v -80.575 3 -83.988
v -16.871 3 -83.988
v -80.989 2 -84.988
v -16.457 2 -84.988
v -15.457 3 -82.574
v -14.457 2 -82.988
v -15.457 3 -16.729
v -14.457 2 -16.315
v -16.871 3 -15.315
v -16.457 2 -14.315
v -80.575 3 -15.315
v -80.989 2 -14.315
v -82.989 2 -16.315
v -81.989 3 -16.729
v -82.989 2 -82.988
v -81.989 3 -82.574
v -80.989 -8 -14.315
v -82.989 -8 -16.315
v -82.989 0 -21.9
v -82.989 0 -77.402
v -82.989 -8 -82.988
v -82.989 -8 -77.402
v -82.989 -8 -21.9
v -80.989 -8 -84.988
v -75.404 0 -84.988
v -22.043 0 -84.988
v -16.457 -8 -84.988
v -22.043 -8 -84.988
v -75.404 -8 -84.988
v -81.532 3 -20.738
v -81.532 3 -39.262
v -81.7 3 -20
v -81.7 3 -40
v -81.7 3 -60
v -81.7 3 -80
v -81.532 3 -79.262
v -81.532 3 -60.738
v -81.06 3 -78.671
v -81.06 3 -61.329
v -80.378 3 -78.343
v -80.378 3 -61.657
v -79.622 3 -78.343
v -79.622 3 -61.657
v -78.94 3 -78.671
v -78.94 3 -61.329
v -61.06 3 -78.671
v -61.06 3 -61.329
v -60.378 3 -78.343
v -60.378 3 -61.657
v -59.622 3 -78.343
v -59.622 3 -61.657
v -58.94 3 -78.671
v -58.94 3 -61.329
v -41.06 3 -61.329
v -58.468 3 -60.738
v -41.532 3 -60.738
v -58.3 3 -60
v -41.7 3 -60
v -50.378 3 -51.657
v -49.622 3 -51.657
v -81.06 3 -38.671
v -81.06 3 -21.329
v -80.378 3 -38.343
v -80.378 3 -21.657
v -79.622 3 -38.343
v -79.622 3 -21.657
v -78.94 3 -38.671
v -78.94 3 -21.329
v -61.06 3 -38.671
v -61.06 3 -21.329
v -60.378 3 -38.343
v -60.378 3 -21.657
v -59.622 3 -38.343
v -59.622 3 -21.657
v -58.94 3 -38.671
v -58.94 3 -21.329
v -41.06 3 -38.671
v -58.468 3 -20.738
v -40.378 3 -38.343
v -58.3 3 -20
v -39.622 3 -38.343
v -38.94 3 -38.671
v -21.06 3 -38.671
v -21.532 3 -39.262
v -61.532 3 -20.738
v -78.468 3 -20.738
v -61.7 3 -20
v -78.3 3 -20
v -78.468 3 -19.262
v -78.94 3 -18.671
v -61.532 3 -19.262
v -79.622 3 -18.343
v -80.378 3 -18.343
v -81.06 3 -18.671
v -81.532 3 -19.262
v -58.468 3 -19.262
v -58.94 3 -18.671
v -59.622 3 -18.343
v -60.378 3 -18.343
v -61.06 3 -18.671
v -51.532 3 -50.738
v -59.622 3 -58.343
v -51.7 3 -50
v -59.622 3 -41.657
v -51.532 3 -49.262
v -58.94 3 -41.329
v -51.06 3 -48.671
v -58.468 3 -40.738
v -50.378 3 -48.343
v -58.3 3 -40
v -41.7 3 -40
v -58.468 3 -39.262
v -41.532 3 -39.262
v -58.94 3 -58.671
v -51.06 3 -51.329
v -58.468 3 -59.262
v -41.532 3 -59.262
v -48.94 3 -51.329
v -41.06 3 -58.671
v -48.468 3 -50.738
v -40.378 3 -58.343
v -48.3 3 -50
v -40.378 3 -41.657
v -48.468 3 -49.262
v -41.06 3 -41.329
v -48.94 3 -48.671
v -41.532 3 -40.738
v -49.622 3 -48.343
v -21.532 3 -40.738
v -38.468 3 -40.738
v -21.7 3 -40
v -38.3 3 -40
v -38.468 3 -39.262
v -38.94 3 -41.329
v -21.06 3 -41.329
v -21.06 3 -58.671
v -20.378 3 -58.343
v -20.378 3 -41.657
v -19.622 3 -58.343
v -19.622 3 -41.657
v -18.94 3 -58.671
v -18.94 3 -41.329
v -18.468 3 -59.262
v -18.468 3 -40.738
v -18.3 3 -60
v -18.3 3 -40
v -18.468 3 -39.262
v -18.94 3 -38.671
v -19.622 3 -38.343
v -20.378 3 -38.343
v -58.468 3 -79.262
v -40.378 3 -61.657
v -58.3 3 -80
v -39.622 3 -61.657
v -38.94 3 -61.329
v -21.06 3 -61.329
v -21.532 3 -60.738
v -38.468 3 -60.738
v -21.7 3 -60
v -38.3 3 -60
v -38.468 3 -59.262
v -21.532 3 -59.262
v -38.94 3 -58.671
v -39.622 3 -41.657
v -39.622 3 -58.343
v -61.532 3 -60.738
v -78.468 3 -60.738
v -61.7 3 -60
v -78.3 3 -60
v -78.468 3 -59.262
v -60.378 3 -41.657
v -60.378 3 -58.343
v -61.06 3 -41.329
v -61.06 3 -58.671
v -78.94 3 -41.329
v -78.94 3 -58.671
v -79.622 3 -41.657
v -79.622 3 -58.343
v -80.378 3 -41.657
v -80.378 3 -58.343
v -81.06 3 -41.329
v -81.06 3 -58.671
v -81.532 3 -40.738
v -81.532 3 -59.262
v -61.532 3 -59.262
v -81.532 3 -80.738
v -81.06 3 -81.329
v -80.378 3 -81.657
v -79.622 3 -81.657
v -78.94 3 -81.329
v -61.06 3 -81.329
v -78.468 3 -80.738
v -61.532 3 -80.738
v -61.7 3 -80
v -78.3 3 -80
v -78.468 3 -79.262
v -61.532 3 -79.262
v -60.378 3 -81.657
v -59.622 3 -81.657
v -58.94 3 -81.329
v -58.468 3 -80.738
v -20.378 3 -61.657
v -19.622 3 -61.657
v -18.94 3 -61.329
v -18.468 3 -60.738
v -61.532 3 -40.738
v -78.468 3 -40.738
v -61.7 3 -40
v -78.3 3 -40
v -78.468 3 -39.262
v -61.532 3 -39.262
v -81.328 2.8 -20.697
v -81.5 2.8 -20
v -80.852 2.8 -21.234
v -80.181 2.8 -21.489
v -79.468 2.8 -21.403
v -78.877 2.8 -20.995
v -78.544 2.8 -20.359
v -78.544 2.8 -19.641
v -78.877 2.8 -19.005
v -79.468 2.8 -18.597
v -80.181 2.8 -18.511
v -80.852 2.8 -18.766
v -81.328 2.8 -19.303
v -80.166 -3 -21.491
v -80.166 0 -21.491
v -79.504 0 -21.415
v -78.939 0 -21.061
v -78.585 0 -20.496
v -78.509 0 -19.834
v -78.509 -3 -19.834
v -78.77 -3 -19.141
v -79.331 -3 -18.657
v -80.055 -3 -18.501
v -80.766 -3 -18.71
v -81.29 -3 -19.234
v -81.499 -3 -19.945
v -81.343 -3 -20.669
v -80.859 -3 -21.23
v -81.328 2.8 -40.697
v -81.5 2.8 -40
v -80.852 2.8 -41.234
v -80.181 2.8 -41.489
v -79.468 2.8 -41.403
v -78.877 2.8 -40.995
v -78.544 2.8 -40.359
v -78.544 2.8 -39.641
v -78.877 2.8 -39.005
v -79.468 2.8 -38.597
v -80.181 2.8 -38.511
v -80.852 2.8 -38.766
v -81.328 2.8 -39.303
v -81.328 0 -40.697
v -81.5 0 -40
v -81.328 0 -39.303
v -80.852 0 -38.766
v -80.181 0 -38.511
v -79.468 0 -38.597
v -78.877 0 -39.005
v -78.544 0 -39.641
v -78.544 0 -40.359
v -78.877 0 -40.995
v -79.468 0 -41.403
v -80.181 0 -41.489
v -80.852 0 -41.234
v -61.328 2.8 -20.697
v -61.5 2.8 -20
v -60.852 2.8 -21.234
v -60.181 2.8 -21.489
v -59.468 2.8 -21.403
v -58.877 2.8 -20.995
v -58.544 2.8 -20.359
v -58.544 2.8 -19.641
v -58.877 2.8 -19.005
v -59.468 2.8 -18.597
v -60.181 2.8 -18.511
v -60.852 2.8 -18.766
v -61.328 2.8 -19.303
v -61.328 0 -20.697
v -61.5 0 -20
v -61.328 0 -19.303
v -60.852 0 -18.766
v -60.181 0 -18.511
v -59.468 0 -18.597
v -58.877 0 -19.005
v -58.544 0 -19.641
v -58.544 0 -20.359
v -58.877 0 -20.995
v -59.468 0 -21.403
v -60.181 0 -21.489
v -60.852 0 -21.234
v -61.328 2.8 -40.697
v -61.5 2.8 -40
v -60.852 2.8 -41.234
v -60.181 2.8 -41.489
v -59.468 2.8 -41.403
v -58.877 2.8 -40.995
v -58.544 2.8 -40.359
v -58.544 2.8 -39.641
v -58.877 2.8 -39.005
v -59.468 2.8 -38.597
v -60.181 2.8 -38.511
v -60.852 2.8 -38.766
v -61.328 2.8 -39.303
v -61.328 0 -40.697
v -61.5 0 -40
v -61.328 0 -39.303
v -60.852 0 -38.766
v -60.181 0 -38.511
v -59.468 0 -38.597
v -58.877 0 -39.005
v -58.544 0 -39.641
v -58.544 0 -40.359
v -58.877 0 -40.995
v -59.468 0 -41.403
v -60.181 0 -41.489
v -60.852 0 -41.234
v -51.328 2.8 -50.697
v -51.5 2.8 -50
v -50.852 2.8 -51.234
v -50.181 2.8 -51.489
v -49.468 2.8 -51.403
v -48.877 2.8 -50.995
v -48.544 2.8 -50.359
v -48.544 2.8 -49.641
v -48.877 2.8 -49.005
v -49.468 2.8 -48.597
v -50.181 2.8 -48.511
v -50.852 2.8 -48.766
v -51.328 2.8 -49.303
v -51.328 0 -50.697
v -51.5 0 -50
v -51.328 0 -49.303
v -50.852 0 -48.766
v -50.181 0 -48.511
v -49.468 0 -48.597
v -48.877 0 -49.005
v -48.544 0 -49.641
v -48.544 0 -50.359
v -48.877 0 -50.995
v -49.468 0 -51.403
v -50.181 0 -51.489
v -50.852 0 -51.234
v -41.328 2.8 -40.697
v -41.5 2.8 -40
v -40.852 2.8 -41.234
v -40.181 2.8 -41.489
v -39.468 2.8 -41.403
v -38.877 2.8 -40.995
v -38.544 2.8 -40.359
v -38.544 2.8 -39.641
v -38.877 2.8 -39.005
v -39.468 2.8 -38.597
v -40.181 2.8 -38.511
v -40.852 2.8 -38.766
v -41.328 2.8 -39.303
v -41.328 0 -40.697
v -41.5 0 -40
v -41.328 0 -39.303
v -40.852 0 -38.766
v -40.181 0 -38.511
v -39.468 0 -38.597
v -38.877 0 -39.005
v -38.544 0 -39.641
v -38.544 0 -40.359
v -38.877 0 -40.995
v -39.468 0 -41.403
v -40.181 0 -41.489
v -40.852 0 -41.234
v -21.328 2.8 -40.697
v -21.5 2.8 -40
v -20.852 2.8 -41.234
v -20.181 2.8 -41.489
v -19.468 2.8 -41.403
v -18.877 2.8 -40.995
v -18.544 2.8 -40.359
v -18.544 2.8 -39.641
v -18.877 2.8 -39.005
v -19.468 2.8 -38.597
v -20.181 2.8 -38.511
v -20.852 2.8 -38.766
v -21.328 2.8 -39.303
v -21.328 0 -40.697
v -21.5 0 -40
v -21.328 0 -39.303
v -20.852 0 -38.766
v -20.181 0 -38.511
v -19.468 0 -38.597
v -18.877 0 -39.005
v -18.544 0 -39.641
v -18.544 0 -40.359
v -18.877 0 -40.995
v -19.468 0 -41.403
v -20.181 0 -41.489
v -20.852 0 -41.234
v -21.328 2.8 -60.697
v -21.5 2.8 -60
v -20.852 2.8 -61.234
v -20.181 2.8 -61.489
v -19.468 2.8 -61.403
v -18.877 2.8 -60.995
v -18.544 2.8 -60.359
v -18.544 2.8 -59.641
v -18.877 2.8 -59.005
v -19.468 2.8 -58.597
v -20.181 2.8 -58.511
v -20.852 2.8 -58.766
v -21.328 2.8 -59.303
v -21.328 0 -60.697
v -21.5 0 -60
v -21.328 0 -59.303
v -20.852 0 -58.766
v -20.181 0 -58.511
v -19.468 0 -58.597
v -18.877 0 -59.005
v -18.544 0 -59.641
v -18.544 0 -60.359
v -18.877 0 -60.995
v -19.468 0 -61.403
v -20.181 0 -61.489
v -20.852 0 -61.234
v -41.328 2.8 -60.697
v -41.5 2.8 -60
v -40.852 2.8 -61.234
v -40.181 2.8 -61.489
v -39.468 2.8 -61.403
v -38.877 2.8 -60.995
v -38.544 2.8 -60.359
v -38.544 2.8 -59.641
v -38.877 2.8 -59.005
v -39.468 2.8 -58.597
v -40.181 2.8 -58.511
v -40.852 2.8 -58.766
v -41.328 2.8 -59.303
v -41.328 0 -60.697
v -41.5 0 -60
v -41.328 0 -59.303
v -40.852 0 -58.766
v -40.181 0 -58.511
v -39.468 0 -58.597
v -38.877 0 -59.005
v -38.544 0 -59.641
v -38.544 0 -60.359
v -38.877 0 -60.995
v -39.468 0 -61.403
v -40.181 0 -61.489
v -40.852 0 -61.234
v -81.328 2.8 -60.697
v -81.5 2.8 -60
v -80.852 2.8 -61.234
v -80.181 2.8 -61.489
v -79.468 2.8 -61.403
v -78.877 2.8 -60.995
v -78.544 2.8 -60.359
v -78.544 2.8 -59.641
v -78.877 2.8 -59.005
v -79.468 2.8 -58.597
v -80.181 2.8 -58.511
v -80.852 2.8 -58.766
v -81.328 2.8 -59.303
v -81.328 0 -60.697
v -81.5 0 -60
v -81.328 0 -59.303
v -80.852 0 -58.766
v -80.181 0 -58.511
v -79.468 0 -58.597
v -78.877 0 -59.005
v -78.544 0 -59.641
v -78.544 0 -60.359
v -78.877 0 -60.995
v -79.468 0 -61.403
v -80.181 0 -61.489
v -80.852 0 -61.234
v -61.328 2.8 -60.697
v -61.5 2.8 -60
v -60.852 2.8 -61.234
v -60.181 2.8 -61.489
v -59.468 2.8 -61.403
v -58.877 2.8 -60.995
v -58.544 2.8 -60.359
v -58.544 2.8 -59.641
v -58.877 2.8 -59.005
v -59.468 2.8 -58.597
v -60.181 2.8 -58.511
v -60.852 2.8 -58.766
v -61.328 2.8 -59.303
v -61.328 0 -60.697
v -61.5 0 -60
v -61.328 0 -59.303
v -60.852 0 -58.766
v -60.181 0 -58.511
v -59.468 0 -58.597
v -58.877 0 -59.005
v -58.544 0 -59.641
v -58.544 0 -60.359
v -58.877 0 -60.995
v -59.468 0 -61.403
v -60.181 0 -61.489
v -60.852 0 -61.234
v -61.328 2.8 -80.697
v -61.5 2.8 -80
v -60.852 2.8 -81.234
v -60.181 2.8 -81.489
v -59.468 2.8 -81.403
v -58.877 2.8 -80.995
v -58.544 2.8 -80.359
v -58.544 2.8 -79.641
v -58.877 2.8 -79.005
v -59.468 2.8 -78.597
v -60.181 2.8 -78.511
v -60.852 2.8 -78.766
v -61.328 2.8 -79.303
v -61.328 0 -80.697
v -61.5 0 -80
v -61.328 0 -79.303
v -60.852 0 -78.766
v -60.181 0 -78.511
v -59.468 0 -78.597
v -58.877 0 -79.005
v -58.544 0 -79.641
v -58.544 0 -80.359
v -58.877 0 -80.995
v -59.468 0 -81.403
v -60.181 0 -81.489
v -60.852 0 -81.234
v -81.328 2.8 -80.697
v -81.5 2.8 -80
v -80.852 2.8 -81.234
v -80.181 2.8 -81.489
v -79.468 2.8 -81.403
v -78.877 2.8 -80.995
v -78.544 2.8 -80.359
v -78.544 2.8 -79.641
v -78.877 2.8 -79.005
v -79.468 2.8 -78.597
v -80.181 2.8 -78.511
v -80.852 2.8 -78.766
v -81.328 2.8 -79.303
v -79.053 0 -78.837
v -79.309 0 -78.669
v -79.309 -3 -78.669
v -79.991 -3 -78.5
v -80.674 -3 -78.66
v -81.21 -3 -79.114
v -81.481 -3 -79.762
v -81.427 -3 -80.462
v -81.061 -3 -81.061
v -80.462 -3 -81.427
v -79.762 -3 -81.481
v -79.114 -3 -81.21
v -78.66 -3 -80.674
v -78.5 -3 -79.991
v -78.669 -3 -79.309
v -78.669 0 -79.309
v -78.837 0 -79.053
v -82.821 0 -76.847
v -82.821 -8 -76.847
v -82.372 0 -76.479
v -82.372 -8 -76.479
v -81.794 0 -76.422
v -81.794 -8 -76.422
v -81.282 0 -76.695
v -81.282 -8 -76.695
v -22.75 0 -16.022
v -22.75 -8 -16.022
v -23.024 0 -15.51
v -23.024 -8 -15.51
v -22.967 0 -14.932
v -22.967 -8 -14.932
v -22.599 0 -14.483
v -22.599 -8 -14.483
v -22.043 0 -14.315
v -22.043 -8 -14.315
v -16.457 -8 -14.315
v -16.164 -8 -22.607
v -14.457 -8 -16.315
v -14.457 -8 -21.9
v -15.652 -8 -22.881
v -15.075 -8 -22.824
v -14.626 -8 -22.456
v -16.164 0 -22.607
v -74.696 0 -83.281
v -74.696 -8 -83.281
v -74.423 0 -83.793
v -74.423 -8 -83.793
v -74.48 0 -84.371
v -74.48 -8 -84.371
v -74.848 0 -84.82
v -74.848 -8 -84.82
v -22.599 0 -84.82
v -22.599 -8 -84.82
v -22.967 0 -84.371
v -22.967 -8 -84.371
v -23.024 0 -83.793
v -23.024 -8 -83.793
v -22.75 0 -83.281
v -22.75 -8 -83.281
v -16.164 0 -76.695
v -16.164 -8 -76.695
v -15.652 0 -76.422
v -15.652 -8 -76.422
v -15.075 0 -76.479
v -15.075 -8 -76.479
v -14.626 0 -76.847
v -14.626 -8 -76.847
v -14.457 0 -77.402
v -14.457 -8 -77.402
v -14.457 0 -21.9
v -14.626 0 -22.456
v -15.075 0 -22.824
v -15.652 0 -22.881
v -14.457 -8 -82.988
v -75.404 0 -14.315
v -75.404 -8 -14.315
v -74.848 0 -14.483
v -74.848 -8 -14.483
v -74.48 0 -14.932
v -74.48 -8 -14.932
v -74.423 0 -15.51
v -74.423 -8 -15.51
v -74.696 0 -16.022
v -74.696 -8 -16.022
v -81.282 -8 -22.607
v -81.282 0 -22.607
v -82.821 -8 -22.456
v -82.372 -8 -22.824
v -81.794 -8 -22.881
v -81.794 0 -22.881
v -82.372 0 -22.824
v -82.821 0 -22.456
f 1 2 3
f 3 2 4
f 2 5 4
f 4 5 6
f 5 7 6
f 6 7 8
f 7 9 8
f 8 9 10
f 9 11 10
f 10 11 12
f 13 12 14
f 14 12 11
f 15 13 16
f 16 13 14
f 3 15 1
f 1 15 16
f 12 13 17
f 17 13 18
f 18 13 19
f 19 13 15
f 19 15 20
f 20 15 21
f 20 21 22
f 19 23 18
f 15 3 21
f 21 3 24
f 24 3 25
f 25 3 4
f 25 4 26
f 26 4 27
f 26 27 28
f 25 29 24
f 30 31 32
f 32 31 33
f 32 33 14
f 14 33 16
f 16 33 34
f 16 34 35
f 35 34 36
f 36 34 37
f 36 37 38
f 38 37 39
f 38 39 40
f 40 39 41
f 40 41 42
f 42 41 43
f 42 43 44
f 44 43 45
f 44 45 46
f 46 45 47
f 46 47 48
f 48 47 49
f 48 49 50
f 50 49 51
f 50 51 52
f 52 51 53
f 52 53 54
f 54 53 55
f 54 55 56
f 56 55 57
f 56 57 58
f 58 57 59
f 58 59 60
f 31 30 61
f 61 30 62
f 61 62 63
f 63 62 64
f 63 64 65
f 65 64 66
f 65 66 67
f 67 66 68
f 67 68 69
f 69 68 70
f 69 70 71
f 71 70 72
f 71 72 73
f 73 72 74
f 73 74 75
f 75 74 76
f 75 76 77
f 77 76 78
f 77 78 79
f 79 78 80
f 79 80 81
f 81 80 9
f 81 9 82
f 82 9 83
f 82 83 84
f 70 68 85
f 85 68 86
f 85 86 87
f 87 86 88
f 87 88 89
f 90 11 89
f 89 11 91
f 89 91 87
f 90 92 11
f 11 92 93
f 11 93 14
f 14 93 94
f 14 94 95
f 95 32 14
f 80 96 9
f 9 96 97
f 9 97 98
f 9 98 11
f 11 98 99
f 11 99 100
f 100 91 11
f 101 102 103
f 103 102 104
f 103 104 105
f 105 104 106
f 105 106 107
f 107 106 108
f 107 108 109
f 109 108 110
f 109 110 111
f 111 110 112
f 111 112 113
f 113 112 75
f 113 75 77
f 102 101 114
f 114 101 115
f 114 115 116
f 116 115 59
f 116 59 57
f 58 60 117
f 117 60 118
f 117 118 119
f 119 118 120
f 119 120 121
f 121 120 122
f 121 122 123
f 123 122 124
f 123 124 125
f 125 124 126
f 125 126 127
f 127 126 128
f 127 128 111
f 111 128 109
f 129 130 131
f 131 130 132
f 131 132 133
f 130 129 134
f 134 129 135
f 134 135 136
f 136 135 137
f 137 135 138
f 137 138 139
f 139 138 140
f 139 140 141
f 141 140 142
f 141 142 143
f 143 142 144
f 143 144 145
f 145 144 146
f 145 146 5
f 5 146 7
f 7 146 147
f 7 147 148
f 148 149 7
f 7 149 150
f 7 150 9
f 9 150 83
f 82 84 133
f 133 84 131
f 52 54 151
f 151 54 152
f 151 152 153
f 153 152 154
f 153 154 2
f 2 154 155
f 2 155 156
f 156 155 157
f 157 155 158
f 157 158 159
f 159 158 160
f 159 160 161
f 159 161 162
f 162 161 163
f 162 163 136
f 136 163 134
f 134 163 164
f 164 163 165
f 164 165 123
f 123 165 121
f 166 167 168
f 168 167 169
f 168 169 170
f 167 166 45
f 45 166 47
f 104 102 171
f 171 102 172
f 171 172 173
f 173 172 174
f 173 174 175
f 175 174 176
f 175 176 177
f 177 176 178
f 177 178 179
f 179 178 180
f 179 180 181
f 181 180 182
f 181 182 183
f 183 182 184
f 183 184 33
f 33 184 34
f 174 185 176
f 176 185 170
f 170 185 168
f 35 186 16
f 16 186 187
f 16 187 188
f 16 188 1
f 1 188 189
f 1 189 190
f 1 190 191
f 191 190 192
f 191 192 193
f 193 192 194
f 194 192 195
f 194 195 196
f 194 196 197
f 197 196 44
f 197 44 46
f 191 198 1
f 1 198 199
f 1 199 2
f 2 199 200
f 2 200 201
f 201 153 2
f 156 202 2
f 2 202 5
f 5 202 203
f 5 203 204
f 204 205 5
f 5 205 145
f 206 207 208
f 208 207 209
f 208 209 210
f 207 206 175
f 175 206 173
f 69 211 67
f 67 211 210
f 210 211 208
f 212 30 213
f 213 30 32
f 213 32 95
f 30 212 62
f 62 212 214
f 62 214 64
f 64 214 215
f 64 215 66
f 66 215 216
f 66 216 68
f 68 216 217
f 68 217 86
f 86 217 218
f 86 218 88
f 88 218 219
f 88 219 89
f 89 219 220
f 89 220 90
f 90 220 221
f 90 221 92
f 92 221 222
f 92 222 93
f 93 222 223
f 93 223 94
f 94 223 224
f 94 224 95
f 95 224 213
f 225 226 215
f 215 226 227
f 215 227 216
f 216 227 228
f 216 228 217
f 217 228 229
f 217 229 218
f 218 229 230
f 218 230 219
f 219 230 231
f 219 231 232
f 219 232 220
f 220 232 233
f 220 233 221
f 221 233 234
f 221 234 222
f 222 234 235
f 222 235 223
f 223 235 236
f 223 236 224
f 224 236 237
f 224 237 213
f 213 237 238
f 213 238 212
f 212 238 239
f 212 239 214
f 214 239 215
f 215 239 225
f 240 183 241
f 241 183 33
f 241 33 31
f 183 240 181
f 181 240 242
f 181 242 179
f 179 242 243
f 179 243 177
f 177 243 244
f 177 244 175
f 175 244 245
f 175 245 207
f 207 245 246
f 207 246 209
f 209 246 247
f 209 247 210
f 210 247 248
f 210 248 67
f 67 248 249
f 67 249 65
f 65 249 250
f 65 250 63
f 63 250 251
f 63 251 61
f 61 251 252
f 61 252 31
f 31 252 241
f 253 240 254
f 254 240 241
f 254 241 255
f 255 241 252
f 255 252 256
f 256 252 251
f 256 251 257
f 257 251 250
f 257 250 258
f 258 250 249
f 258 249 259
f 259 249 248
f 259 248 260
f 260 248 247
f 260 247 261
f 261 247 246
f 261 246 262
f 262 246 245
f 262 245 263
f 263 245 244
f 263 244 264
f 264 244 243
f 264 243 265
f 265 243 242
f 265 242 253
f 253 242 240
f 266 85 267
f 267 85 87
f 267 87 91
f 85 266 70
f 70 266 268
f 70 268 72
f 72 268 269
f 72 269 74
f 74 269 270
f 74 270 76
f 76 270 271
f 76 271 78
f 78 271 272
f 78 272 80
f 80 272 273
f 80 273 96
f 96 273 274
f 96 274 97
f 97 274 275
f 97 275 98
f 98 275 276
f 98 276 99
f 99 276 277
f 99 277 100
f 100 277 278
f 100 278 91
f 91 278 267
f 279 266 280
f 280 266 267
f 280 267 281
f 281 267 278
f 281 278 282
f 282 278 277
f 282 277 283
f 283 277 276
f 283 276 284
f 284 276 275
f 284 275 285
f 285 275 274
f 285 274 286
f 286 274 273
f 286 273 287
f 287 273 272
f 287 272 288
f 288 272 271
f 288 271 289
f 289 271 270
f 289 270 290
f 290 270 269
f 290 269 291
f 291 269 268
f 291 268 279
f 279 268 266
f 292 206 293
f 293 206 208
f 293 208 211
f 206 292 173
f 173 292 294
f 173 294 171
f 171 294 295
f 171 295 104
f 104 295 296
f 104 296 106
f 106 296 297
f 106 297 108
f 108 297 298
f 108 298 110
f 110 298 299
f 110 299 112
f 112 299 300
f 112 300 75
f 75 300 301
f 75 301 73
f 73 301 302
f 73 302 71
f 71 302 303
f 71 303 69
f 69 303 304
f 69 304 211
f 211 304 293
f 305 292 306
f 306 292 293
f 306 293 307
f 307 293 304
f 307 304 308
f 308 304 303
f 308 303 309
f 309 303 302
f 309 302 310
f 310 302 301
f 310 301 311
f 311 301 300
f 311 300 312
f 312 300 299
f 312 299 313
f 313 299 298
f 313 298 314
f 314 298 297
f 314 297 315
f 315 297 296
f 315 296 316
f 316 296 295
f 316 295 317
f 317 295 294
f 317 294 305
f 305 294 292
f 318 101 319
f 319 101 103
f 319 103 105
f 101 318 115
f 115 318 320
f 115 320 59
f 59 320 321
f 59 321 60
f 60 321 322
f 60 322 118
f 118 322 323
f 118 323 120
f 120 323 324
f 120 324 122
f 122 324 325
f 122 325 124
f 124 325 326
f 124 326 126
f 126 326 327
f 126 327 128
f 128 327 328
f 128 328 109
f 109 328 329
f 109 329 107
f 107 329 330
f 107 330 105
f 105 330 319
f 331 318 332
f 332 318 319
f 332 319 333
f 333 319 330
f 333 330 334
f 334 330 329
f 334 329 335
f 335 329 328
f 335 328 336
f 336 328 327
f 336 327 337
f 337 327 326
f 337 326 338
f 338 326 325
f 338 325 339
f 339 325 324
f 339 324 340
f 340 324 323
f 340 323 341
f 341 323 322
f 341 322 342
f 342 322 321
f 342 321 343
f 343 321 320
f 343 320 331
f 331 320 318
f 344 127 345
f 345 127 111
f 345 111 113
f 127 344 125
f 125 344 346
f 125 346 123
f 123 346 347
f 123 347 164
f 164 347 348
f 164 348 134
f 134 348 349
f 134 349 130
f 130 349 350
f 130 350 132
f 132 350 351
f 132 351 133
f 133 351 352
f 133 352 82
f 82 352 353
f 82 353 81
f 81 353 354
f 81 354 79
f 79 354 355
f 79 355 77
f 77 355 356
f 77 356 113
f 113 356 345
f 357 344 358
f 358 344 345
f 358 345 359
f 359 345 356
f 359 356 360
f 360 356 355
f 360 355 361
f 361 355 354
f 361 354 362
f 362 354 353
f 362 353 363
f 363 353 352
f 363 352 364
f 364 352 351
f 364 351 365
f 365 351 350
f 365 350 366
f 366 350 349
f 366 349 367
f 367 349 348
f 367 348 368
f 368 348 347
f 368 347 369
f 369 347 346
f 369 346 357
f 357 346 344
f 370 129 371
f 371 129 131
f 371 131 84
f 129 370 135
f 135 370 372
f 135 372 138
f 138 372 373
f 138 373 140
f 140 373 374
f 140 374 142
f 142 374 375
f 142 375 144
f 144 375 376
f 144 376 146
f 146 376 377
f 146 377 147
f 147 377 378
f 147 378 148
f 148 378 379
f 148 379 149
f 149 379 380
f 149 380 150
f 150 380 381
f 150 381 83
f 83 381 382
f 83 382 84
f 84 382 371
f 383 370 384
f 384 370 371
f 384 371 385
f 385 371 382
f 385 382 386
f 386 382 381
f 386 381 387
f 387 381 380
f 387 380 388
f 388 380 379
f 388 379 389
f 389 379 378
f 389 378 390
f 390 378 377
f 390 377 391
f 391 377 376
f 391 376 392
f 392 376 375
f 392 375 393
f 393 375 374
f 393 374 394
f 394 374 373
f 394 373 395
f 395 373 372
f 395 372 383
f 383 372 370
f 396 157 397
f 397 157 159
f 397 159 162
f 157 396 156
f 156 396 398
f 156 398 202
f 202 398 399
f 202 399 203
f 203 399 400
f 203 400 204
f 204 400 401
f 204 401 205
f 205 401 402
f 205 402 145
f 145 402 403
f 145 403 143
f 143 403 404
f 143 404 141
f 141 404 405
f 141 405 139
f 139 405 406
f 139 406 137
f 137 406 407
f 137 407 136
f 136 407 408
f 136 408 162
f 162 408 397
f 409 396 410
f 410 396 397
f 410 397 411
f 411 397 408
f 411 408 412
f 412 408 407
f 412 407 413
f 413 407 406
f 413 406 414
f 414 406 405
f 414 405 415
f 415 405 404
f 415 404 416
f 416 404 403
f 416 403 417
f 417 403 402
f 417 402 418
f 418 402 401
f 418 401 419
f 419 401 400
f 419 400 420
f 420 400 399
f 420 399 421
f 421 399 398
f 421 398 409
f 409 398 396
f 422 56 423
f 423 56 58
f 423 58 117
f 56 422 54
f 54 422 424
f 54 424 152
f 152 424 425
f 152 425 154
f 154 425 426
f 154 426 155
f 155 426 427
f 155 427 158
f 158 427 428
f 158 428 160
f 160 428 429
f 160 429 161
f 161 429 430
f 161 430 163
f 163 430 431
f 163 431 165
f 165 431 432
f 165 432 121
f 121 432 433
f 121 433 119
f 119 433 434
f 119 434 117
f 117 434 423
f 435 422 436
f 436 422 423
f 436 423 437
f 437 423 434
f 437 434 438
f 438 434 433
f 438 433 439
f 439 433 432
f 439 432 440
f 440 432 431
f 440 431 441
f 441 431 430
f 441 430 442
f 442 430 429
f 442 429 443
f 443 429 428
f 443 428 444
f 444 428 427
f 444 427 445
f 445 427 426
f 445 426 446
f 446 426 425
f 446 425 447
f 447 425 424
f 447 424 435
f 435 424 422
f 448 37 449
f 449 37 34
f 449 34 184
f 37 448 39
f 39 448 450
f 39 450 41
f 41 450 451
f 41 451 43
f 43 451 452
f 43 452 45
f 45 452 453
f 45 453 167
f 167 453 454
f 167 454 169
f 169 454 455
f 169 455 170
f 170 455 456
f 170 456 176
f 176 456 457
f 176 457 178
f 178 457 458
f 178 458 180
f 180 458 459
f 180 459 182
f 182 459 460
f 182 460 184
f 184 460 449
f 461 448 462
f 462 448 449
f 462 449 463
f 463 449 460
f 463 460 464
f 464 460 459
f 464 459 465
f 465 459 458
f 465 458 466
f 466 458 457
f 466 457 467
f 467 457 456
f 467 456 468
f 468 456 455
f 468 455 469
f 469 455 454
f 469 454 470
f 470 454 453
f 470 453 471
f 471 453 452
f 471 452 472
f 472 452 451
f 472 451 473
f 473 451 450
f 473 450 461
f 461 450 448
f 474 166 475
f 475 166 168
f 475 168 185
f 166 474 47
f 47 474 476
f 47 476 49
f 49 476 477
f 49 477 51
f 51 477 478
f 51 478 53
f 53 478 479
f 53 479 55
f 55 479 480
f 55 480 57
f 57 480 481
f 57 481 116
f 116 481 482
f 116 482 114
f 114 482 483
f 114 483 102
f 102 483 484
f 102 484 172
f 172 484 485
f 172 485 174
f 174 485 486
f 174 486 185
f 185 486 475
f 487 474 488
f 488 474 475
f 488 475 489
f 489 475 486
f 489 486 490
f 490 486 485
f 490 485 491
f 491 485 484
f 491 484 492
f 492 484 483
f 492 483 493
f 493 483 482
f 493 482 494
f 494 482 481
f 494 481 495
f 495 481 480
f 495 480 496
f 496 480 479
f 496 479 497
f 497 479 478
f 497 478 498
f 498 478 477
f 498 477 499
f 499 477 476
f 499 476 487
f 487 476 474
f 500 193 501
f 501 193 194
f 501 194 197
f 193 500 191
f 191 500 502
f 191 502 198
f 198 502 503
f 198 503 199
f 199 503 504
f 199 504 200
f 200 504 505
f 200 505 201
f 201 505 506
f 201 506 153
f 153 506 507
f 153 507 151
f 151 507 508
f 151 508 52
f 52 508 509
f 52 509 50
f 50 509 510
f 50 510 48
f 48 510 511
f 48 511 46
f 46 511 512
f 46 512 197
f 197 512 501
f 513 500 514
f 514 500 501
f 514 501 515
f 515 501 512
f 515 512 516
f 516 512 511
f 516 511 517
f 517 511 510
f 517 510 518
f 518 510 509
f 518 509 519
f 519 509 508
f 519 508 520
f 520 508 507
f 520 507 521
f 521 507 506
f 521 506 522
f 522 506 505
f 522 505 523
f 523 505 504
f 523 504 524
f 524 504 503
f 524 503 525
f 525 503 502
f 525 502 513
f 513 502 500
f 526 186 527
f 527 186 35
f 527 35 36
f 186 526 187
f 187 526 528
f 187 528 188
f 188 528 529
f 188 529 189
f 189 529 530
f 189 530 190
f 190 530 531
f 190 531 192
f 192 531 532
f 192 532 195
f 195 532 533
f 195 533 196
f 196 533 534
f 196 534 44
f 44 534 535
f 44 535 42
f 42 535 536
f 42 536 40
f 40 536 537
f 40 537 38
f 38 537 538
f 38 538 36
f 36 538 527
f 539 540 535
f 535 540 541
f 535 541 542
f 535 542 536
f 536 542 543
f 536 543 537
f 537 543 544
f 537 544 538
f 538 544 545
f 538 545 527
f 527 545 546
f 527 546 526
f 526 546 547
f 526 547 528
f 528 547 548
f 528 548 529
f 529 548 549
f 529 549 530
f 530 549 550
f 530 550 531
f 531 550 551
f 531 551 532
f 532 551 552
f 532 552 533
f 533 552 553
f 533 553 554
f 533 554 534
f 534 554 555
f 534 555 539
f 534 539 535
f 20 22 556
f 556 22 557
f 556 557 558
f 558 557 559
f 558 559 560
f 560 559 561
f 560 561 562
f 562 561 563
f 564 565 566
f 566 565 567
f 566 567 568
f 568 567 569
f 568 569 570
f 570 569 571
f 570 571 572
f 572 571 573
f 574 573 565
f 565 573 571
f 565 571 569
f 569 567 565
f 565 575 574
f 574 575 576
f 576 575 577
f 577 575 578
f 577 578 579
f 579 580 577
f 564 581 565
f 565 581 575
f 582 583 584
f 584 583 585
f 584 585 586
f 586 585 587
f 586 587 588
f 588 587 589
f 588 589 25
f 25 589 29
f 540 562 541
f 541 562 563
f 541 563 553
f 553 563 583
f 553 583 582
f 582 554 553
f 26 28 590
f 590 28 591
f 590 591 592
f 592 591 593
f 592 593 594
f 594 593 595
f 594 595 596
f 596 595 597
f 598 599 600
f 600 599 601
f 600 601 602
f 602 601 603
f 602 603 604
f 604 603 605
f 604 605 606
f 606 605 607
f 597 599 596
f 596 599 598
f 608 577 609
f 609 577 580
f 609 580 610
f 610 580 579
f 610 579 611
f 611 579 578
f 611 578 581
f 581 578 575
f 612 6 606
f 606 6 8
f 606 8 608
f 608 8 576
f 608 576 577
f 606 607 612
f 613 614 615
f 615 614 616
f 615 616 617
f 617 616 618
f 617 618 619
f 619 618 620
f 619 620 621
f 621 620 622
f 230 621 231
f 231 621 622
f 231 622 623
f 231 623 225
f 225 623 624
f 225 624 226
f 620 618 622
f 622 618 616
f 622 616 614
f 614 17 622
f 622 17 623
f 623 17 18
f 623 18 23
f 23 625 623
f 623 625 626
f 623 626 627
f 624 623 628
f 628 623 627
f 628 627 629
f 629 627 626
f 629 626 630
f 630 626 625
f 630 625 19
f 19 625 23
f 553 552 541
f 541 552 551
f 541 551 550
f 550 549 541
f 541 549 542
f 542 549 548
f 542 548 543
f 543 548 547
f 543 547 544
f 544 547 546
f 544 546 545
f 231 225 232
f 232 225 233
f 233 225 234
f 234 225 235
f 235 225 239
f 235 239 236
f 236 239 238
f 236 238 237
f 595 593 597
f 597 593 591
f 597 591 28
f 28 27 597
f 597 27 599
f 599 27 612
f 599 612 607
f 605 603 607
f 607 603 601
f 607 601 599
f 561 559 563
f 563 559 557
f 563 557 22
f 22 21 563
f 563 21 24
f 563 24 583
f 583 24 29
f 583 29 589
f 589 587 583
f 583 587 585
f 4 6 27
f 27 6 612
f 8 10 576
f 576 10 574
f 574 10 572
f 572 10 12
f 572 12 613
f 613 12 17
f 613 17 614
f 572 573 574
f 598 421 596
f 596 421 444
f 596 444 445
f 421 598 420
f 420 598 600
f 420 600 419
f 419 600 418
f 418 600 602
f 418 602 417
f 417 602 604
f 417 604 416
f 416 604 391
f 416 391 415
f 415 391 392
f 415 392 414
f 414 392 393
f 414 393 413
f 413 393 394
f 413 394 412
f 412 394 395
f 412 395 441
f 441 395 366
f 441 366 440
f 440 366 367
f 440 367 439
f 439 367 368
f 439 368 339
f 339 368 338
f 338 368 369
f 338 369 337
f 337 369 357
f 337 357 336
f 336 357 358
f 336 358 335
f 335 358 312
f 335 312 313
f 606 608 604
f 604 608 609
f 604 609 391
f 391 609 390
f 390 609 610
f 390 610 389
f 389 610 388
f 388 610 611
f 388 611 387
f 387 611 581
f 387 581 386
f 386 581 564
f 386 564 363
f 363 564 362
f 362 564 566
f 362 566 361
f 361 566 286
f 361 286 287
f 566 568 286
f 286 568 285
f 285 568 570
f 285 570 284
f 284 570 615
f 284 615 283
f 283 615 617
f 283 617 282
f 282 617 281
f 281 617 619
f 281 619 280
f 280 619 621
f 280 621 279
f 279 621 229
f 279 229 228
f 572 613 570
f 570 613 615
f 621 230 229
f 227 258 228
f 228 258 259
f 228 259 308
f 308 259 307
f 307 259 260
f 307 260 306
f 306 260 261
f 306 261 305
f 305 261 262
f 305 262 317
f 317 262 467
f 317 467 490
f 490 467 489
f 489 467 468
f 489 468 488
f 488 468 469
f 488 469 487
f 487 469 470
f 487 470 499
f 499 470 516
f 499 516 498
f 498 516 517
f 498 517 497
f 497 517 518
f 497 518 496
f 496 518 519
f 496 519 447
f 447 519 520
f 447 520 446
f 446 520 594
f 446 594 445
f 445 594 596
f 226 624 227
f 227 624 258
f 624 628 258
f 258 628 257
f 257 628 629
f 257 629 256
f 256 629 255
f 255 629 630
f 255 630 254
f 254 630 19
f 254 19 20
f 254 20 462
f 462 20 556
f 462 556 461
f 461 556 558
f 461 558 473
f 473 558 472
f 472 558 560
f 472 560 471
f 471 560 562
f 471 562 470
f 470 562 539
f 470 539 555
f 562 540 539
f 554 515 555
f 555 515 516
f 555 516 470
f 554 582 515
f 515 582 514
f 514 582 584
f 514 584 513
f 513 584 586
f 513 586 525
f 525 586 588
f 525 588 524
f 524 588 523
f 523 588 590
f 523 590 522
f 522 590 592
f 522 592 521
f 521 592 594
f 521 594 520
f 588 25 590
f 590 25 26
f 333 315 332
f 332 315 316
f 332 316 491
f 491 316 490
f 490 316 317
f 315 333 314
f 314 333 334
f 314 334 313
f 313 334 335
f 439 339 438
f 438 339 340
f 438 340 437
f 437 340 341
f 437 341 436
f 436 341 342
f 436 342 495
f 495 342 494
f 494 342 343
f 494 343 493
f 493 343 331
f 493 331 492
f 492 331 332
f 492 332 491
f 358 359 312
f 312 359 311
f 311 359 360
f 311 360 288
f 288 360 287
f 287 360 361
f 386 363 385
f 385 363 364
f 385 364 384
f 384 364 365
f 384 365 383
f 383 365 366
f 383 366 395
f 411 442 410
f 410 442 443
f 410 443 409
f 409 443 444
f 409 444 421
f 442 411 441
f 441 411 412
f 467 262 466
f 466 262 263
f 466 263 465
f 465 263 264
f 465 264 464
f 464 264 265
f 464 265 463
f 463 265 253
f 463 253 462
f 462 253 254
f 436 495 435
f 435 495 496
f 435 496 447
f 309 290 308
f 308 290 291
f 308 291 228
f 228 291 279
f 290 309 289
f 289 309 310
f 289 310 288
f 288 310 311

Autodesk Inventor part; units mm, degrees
ref_plane "YZ Plane" through (0, 0, 0) normal (1, 0, 0) x (0, 1, 0)
ref_plane "XZ Plane" through (0, 0, 0) normal (0, 1, 0) x (-1, 0, 0)
ref_plane "XY Plane" through (0, 0, 0) normal (0, 0, 1) x (1, 0, 0)
sketch "Sketch1" plane through (0, 0, 0) normal (0, 1, 0) x (-1, 0, 0)
  circle A0 centre (80, -20) radius 1.5
  circle A1 centre (80, -40) radius 1.5
  circle A2 centre (80, -60) radius 1.5
  circle A3 centre (80, -80) radius 1.5
  circle A4 centre (60, -80) radius 1.5
  circle A5 centre (60, -60) radius 1.5
  circle A6 centre (60, -40) radius 1.5
  circle A7 centre (60, -20) radius 1.5
  circle A8 centre (20, -60) radius 1.5
  circle A9 centre (20, -40) radius 1.5
  circle A10 centre (40, -60) radius 1.5
  circle A11 centre (40, -40) radius 1.5
  circle A12 centre (50, -50) radius 1.5
  line L0 (82.9894, -14.3145) -> (14.4573, -14.3145)
  line L1 (14.4573, -14.3145) -> (14.4573, -84.9883)
  line L2 (14.4573, -84.9883) -> (82.9894, -84.9883)
  line L3 (82.9894, -84.9883) -> (82.9894, -14.3145)
  point P0 (0, 0)
  dimension "d4" = 3
  dimension "d5" = 3
  dimension "d6" = 3
  dimension "d7" = 3
  dimension "d8" = 3
  dimension "d9" = 3
  dimension "d10" = 3
  dimension "d11" = 3
  dimension "d13" = 3
  dimension "d14" = 3
  dimension "d15" = 3
  dimension "d16" = 3
  dimension "d17" = 60
  dimension "d20" = 3
extrude "Extrusion1" add sketch "Sketch1" along normal blind 3
chamfer "Chamfer1" distance 2 angle 45 4 edges at (-14.4573, 1.5, -14.3145) (-14.4573, 1.5, -84.9883) (-82.9894, 1.5, -84.9883) (-82.9894, 1.5, -14.3145)
sketch "Sketch2" plane through (0, 0, 0) normal (0, -1, 0) x (1, 0, 0)
  line L0 (-14.4573, -16.3145) -> (-14.4573, -82.9883) projected
  line L1 (-14.4573, -82.9883) -> (-14.4573, -74.9883)
  line L2 (-16.4573, -84.9883) -> (-80.9894, -84.9883) projected
  line L3 (-16.4573, -84.9883) -> (-24.4573, -84.9883)
  line L4 (-24.4573, -84.9883) -> (-14.4573, -74.9883)
  line L5 (-16.4573, -84.9883) -> (-14.4573, -82.9883) projected
  line L6 (-16.4573, -84.9883) -> (-14.4573, -82.9883)
  line L7 (-80.9894, -84.9883) -> (-72.9894, -84.9883)
  line L8 (-82.9894, -82.9883) -> (-82.9894, -16.3145) projected
  line L9 (-80.9894, -84.9883) -> (-82.9894, -82.9883)
  line L10 (-82.9894, -82.9883) -> (-82.9894, -74.9883)
  line L11 (-82.9894, -74.9883) -> (-72.9894, -84.9883)
  line L12 (-80.9894, -14.3145) -> (-16.4573, -14.3145) projected
  line L13 (-16.4573, -14.3145) -> (-24.4573, -14.3145)
  line L14 (-16.4573, -14.3145) -> (-14.4573, -16.3145)
  line L15 (-14.4573, -16.3145) -> (-14.4573, -24.3145)
  line L16 (-14.4573, -24.3145) -> (-24.4573, -14.3145)
  line L17 (-82.9894, -16.3145) -> (-82.9894, -24.3145)
  line L18 (-82.9894, -16.3145) -> (-80.9894, -14.3145)
  line L19 (-80.9894, -14.3145) -> (-72.9894, -14.3145)
  line L20 (-72.9894, -14.3145) -> (-82.9894, -24.3145)
  point P0 (0, 0)
  dimension "d26" = 8
  dimension "d27" = 8
  dimension "d28" = 8
  dimension "d29" = 8
  dimension "d30" = 8
  dimension "d31" = 8
  dimension "d32" = 8
  dimension "d33" = 8
extrude "Extrusion2" add sketch "Sketch2" along normal blind 8 contours L0 L16 L12 L14 | L0 L5 L2 L4 | L20 L8 L18 L12 | L2 L9 L8 L11
extrude "Extrusion3" cut sketch "Sketch1" against normal blind 3 contours A0 | A3
fillet "Fillet1" radius 1 1 edges at (-82.9894, -4, -24.3145)
fillet "Fillet2" radius 1 7 edges at (-72.9894, -4, -14.3145) (-14.4573, -4, -24.3145) (-14.4573, -4, -74.9883) (-24.4573, -4, -84.9883) (-72.9894, -4, -84.9883) (-24.4573, -4, -14.3145) (-82.9894, -4, -74.9883)
chamfer "Chamfer2" distance 0.2 angle 45 13 edges at (-78.5, 3, -80) (-58.5, 3, -80) (-58.5, 3, -60) (-78.5, 3, -60) (-38.5, 3, -60) (-18.5, 3, -60) (-18.5, 3, -40) (-38.5, 3, -40) (-48.5, 3, -50) (-58.5, 3, -40) (-58.5, 3, -20) (-78.5, 3, -40) (-78.5, 3, -20)
chamfer "Chamfer3" distance 1 angle 45 8 edges at (-48.7233, 3, -14.3145) (-14.4573, 3, -49.6514) (-48.7233, 3, -84.9883) (-82.9894, 3, -49.6514) (-81.9894, 3, -83.9883) (-15.4573, 3, -83.9883) (-15.4573, 3, -15.3145) (-81.9894, 3, -15.3145)
sketch "Sketch4" plane through (0, 3, 0) normal (0, 1, 0) x (1, 0, 0)
  point P0 (0, 0)
equation "\"BendRadius\" = Thickness"
equation "\"BendReliefWidth\" = Thickness"
equation "\"BendReliefDepth\" = 0.5 * Thickness"
equation "\"CornerReliefSize\" = 4 * Thickness"
equation "\"MinimumRemnant\" = 2 * Thickness"
equation "\"TransitionRadius\" = BendRadius"
equation "\"JacobiRadiusSize\" = BendRadius"
equation "\"GapSize\" = Thickness"
equation "\"Thickness\" = 0.5"
properties part number "Repick"
